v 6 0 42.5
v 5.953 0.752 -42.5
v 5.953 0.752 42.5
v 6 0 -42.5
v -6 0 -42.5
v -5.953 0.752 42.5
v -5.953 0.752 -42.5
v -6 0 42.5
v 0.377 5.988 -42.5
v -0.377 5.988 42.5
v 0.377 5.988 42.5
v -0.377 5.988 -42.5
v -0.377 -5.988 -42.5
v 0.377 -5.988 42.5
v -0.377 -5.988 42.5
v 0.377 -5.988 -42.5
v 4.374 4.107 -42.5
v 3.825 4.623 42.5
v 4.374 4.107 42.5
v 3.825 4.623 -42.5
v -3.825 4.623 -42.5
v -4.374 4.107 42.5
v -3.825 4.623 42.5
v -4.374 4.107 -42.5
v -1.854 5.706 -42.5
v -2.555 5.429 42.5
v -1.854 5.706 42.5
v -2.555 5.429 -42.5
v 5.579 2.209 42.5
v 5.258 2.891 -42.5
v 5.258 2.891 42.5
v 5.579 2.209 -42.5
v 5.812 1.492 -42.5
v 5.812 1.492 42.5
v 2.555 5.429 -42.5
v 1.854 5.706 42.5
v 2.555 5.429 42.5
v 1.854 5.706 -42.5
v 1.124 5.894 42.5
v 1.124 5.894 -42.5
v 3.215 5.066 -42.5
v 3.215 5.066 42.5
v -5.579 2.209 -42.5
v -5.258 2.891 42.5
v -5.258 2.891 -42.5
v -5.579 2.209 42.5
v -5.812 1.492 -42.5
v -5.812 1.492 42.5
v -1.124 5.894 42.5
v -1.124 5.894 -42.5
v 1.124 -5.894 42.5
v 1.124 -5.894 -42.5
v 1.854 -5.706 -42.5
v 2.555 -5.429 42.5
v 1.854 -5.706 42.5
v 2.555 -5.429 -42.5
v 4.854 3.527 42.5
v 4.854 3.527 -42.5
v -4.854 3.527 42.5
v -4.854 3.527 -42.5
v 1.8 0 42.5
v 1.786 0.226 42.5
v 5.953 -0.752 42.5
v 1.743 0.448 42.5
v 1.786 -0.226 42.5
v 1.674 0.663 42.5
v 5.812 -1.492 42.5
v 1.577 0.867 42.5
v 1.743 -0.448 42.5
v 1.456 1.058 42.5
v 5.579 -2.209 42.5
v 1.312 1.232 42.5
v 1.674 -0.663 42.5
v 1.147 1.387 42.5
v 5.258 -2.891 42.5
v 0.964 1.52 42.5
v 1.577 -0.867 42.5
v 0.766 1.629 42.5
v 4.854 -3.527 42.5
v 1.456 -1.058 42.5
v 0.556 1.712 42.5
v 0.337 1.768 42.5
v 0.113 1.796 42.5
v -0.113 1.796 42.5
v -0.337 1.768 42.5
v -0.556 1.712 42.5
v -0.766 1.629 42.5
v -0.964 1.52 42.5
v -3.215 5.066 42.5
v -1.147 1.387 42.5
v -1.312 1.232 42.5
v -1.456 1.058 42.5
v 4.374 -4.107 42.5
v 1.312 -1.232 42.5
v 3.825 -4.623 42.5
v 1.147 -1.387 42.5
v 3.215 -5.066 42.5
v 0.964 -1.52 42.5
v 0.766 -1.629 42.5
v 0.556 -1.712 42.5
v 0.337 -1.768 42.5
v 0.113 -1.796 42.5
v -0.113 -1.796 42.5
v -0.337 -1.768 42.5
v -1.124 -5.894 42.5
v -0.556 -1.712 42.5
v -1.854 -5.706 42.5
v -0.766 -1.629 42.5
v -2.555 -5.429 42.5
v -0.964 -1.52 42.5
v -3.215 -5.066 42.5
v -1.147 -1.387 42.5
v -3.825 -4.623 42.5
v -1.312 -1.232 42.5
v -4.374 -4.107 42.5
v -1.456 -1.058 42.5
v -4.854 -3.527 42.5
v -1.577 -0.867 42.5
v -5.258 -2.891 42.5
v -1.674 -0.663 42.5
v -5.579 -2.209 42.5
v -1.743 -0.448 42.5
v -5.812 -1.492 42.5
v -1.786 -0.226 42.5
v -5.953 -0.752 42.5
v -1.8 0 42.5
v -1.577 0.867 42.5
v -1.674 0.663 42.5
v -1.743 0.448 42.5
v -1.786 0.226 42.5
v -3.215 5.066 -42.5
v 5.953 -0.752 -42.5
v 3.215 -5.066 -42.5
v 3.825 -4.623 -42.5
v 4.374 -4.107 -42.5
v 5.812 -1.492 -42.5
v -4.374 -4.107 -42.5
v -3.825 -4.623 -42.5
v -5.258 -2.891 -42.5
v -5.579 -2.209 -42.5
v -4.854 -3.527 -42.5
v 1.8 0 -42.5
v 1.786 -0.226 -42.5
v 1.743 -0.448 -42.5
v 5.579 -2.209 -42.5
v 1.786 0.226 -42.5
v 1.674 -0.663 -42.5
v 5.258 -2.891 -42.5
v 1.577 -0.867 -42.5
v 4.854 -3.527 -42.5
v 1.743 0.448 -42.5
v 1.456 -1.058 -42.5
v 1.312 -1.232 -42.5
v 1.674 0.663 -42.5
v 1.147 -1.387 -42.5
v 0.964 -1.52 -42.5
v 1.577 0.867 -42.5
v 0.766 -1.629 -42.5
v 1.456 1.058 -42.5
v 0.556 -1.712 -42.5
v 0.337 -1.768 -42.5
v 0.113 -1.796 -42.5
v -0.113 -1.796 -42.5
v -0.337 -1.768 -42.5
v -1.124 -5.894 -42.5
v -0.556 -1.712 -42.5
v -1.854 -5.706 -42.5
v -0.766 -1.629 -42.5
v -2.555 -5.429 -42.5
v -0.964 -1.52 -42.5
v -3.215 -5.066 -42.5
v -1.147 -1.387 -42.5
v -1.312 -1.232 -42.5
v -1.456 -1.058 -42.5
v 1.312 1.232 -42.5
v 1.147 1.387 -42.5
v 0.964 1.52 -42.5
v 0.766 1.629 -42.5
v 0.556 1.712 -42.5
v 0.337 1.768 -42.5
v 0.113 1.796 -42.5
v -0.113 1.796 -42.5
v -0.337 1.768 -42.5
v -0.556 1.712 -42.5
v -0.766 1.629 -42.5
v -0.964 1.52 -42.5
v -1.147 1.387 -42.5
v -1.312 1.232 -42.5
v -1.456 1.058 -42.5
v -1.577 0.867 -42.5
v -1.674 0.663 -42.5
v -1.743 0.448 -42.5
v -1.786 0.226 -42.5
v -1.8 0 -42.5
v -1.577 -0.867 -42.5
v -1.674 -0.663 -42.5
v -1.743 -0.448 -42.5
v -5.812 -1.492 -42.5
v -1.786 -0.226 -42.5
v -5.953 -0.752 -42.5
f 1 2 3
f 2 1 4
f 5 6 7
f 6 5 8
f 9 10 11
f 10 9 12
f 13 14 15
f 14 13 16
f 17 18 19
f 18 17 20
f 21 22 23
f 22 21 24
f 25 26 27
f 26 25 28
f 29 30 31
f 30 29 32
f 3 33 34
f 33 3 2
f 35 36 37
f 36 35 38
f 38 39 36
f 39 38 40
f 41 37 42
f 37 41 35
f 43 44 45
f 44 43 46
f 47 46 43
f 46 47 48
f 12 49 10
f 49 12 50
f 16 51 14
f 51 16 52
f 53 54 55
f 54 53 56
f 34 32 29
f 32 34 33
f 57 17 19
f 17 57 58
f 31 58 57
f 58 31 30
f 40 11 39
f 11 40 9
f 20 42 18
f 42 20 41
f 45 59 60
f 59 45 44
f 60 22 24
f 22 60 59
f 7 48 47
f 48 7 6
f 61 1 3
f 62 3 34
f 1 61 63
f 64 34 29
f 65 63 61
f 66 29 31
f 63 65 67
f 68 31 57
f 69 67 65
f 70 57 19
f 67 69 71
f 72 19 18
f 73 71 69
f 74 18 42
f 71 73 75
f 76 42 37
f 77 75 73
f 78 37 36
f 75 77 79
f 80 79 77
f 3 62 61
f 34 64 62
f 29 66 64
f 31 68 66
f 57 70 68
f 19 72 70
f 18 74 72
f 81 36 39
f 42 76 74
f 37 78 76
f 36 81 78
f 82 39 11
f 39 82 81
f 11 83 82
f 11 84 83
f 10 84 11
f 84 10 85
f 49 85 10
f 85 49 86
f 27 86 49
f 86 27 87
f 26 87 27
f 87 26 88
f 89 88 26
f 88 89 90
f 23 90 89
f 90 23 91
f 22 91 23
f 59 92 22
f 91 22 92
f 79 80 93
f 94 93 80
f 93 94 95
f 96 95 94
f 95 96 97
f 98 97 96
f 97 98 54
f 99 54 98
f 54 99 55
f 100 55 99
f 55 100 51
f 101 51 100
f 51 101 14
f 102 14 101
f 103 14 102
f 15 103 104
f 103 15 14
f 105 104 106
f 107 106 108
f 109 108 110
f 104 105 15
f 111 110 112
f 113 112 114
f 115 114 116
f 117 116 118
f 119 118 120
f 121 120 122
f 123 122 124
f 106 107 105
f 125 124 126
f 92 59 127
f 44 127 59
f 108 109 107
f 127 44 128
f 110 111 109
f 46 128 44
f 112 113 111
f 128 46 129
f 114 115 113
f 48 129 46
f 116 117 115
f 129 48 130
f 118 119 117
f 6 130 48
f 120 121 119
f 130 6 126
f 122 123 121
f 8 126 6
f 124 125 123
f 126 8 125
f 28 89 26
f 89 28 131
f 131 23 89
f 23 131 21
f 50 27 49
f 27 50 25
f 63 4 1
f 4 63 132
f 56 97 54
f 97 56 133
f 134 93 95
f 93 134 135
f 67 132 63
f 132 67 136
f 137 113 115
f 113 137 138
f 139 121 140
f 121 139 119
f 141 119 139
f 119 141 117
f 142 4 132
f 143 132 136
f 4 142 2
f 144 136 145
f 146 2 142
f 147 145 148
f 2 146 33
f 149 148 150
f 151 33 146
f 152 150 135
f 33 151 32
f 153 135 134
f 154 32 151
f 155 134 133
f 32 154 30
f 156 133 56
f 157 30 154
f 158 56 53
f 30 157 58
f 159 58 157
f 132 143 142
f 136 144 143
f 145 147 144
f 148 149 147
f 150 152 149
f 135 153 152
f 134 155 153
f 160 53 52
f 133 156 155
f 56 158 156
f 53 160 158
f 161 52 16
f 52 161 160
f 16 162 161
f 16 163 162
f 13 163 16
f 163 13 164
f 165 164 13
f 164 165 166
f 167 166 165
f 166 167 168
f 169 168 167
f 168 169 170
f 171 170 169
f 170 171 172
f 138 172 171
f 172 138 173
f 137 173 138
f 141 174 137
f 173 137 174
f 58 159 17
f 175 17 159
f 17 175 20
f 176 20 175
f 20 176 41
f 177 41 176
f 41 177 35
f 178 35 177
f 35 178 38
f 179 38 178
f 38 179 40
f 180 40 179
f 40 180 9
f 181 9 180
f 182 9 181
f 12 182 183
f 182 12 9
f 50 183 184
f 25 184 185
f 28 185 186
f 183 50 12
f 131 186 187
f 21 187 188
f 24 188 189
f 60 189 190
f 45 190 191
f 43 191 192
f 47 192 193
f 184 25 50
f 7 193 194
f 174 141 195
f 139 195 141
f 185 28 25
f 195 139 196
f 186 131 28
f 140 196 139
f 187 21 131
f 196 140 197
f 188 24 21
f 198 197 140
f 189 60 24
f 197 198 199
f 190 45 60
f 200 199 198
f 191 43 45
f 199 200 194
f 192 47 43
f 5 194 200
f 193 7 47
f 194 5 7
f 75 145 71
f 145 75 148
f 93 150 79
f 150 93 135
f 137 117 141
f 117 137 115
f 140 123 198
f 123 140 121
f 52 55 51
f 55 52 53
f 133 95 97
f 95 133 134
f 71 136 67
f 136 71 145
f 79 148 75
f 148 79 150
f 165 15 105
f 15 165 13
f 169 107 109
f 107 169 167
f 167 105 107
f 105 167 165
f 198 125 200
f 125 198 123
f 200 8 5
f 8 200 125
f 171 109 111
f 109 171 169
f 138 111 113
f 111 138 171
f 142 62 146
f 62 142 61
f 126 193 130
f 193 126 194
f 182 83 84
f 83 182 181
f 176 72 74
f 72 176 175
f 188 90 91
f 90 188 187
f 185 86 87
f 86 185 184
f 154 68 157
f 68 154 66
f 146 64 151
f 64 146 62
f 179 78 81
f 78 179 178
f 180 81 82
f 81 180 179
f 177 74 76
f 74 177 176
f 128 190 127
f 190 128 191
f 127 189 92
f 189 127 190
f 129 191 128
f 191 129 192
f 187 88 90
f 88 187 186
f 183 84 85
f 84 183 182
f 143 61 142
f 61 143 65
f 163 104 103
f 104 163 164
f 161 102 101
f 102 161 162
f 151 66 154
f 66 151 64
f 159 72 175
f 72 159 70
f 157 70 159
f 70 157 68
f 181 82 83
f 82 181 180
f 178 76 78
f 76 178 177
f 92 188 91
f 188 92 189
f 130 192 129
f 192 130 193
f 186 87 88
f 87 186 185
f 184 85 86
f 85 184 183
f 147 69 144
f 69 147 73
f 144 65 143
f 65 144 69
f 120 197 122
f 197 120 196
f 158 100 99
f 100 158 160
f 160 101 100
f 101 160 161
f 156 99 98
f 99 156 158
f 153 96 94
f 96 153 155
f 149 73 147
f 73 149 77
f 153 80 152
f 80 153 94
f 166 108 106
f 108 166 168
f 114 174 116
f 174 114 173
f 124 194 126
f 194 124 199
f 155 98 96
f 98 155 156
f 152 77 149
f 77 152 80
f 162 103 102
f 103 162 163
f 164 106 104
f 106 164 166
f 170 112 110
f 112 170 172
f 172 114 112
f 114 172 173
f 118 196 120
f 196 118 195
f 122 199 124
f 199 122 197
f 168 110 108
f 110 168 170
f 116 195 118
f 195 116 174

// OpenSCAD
$fn = 50;


difference() {
	union() {
		translate(v = [0, 0, -42.5000000000]) {
			cylinder(h = 85, r = 6.0000000000);
		}
	}
	union() {
		translate(v = [0, 0, -100.0000000000]) {
			cylinder(h = 200, r = 1.8000000000);
		}
	}
}
